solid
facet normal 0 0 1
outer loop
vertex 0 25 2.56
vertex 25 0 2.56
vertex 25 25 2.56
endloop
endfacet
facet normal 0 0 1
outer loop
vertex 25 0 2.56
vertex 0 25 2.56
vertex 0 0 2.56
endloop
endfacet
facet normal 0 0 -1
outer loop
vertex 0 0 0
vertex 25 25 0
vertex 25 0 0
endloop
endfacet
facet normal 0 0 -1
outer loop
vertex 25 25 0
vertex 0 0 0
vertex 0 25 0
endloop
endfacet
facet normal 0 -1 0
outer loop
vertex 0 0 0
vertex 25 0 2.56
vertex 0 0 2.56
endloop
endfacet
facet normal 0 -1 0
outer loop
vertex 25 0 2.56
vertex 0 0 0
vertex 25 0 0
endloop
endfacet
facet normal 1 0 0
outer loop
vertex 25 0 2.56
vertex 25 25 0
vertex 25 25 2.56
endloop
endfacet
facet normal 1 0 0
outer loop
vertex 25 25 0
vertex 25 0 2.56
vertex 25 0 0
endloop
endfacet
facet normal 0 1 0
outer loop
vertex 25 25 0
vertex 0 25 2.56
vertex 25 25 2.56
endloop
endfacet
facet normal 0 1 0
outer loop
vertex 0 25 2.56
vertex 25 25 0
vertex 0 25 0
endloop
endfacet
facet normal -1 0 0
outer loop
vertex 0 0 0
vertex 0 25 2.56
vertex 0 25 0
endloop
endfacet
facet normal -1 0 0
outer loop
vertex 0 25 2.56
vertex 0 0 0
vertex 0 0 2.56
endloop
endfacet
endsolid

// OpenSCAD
/* Warning, this is a very basic generator with a lot of approximation 
input data : [FCBGA, 5CC, 25x25x2.56mm, 888, , B, C04-25057B]
generated by com.zoubworld.electronics.cad.model3d.Basic
Date : Sun Feb 15 10:50:49 CET 2026
*/

//body
color("black")
translate([0,0,0])
cube([25.0,25.0,2.56], center=false);
